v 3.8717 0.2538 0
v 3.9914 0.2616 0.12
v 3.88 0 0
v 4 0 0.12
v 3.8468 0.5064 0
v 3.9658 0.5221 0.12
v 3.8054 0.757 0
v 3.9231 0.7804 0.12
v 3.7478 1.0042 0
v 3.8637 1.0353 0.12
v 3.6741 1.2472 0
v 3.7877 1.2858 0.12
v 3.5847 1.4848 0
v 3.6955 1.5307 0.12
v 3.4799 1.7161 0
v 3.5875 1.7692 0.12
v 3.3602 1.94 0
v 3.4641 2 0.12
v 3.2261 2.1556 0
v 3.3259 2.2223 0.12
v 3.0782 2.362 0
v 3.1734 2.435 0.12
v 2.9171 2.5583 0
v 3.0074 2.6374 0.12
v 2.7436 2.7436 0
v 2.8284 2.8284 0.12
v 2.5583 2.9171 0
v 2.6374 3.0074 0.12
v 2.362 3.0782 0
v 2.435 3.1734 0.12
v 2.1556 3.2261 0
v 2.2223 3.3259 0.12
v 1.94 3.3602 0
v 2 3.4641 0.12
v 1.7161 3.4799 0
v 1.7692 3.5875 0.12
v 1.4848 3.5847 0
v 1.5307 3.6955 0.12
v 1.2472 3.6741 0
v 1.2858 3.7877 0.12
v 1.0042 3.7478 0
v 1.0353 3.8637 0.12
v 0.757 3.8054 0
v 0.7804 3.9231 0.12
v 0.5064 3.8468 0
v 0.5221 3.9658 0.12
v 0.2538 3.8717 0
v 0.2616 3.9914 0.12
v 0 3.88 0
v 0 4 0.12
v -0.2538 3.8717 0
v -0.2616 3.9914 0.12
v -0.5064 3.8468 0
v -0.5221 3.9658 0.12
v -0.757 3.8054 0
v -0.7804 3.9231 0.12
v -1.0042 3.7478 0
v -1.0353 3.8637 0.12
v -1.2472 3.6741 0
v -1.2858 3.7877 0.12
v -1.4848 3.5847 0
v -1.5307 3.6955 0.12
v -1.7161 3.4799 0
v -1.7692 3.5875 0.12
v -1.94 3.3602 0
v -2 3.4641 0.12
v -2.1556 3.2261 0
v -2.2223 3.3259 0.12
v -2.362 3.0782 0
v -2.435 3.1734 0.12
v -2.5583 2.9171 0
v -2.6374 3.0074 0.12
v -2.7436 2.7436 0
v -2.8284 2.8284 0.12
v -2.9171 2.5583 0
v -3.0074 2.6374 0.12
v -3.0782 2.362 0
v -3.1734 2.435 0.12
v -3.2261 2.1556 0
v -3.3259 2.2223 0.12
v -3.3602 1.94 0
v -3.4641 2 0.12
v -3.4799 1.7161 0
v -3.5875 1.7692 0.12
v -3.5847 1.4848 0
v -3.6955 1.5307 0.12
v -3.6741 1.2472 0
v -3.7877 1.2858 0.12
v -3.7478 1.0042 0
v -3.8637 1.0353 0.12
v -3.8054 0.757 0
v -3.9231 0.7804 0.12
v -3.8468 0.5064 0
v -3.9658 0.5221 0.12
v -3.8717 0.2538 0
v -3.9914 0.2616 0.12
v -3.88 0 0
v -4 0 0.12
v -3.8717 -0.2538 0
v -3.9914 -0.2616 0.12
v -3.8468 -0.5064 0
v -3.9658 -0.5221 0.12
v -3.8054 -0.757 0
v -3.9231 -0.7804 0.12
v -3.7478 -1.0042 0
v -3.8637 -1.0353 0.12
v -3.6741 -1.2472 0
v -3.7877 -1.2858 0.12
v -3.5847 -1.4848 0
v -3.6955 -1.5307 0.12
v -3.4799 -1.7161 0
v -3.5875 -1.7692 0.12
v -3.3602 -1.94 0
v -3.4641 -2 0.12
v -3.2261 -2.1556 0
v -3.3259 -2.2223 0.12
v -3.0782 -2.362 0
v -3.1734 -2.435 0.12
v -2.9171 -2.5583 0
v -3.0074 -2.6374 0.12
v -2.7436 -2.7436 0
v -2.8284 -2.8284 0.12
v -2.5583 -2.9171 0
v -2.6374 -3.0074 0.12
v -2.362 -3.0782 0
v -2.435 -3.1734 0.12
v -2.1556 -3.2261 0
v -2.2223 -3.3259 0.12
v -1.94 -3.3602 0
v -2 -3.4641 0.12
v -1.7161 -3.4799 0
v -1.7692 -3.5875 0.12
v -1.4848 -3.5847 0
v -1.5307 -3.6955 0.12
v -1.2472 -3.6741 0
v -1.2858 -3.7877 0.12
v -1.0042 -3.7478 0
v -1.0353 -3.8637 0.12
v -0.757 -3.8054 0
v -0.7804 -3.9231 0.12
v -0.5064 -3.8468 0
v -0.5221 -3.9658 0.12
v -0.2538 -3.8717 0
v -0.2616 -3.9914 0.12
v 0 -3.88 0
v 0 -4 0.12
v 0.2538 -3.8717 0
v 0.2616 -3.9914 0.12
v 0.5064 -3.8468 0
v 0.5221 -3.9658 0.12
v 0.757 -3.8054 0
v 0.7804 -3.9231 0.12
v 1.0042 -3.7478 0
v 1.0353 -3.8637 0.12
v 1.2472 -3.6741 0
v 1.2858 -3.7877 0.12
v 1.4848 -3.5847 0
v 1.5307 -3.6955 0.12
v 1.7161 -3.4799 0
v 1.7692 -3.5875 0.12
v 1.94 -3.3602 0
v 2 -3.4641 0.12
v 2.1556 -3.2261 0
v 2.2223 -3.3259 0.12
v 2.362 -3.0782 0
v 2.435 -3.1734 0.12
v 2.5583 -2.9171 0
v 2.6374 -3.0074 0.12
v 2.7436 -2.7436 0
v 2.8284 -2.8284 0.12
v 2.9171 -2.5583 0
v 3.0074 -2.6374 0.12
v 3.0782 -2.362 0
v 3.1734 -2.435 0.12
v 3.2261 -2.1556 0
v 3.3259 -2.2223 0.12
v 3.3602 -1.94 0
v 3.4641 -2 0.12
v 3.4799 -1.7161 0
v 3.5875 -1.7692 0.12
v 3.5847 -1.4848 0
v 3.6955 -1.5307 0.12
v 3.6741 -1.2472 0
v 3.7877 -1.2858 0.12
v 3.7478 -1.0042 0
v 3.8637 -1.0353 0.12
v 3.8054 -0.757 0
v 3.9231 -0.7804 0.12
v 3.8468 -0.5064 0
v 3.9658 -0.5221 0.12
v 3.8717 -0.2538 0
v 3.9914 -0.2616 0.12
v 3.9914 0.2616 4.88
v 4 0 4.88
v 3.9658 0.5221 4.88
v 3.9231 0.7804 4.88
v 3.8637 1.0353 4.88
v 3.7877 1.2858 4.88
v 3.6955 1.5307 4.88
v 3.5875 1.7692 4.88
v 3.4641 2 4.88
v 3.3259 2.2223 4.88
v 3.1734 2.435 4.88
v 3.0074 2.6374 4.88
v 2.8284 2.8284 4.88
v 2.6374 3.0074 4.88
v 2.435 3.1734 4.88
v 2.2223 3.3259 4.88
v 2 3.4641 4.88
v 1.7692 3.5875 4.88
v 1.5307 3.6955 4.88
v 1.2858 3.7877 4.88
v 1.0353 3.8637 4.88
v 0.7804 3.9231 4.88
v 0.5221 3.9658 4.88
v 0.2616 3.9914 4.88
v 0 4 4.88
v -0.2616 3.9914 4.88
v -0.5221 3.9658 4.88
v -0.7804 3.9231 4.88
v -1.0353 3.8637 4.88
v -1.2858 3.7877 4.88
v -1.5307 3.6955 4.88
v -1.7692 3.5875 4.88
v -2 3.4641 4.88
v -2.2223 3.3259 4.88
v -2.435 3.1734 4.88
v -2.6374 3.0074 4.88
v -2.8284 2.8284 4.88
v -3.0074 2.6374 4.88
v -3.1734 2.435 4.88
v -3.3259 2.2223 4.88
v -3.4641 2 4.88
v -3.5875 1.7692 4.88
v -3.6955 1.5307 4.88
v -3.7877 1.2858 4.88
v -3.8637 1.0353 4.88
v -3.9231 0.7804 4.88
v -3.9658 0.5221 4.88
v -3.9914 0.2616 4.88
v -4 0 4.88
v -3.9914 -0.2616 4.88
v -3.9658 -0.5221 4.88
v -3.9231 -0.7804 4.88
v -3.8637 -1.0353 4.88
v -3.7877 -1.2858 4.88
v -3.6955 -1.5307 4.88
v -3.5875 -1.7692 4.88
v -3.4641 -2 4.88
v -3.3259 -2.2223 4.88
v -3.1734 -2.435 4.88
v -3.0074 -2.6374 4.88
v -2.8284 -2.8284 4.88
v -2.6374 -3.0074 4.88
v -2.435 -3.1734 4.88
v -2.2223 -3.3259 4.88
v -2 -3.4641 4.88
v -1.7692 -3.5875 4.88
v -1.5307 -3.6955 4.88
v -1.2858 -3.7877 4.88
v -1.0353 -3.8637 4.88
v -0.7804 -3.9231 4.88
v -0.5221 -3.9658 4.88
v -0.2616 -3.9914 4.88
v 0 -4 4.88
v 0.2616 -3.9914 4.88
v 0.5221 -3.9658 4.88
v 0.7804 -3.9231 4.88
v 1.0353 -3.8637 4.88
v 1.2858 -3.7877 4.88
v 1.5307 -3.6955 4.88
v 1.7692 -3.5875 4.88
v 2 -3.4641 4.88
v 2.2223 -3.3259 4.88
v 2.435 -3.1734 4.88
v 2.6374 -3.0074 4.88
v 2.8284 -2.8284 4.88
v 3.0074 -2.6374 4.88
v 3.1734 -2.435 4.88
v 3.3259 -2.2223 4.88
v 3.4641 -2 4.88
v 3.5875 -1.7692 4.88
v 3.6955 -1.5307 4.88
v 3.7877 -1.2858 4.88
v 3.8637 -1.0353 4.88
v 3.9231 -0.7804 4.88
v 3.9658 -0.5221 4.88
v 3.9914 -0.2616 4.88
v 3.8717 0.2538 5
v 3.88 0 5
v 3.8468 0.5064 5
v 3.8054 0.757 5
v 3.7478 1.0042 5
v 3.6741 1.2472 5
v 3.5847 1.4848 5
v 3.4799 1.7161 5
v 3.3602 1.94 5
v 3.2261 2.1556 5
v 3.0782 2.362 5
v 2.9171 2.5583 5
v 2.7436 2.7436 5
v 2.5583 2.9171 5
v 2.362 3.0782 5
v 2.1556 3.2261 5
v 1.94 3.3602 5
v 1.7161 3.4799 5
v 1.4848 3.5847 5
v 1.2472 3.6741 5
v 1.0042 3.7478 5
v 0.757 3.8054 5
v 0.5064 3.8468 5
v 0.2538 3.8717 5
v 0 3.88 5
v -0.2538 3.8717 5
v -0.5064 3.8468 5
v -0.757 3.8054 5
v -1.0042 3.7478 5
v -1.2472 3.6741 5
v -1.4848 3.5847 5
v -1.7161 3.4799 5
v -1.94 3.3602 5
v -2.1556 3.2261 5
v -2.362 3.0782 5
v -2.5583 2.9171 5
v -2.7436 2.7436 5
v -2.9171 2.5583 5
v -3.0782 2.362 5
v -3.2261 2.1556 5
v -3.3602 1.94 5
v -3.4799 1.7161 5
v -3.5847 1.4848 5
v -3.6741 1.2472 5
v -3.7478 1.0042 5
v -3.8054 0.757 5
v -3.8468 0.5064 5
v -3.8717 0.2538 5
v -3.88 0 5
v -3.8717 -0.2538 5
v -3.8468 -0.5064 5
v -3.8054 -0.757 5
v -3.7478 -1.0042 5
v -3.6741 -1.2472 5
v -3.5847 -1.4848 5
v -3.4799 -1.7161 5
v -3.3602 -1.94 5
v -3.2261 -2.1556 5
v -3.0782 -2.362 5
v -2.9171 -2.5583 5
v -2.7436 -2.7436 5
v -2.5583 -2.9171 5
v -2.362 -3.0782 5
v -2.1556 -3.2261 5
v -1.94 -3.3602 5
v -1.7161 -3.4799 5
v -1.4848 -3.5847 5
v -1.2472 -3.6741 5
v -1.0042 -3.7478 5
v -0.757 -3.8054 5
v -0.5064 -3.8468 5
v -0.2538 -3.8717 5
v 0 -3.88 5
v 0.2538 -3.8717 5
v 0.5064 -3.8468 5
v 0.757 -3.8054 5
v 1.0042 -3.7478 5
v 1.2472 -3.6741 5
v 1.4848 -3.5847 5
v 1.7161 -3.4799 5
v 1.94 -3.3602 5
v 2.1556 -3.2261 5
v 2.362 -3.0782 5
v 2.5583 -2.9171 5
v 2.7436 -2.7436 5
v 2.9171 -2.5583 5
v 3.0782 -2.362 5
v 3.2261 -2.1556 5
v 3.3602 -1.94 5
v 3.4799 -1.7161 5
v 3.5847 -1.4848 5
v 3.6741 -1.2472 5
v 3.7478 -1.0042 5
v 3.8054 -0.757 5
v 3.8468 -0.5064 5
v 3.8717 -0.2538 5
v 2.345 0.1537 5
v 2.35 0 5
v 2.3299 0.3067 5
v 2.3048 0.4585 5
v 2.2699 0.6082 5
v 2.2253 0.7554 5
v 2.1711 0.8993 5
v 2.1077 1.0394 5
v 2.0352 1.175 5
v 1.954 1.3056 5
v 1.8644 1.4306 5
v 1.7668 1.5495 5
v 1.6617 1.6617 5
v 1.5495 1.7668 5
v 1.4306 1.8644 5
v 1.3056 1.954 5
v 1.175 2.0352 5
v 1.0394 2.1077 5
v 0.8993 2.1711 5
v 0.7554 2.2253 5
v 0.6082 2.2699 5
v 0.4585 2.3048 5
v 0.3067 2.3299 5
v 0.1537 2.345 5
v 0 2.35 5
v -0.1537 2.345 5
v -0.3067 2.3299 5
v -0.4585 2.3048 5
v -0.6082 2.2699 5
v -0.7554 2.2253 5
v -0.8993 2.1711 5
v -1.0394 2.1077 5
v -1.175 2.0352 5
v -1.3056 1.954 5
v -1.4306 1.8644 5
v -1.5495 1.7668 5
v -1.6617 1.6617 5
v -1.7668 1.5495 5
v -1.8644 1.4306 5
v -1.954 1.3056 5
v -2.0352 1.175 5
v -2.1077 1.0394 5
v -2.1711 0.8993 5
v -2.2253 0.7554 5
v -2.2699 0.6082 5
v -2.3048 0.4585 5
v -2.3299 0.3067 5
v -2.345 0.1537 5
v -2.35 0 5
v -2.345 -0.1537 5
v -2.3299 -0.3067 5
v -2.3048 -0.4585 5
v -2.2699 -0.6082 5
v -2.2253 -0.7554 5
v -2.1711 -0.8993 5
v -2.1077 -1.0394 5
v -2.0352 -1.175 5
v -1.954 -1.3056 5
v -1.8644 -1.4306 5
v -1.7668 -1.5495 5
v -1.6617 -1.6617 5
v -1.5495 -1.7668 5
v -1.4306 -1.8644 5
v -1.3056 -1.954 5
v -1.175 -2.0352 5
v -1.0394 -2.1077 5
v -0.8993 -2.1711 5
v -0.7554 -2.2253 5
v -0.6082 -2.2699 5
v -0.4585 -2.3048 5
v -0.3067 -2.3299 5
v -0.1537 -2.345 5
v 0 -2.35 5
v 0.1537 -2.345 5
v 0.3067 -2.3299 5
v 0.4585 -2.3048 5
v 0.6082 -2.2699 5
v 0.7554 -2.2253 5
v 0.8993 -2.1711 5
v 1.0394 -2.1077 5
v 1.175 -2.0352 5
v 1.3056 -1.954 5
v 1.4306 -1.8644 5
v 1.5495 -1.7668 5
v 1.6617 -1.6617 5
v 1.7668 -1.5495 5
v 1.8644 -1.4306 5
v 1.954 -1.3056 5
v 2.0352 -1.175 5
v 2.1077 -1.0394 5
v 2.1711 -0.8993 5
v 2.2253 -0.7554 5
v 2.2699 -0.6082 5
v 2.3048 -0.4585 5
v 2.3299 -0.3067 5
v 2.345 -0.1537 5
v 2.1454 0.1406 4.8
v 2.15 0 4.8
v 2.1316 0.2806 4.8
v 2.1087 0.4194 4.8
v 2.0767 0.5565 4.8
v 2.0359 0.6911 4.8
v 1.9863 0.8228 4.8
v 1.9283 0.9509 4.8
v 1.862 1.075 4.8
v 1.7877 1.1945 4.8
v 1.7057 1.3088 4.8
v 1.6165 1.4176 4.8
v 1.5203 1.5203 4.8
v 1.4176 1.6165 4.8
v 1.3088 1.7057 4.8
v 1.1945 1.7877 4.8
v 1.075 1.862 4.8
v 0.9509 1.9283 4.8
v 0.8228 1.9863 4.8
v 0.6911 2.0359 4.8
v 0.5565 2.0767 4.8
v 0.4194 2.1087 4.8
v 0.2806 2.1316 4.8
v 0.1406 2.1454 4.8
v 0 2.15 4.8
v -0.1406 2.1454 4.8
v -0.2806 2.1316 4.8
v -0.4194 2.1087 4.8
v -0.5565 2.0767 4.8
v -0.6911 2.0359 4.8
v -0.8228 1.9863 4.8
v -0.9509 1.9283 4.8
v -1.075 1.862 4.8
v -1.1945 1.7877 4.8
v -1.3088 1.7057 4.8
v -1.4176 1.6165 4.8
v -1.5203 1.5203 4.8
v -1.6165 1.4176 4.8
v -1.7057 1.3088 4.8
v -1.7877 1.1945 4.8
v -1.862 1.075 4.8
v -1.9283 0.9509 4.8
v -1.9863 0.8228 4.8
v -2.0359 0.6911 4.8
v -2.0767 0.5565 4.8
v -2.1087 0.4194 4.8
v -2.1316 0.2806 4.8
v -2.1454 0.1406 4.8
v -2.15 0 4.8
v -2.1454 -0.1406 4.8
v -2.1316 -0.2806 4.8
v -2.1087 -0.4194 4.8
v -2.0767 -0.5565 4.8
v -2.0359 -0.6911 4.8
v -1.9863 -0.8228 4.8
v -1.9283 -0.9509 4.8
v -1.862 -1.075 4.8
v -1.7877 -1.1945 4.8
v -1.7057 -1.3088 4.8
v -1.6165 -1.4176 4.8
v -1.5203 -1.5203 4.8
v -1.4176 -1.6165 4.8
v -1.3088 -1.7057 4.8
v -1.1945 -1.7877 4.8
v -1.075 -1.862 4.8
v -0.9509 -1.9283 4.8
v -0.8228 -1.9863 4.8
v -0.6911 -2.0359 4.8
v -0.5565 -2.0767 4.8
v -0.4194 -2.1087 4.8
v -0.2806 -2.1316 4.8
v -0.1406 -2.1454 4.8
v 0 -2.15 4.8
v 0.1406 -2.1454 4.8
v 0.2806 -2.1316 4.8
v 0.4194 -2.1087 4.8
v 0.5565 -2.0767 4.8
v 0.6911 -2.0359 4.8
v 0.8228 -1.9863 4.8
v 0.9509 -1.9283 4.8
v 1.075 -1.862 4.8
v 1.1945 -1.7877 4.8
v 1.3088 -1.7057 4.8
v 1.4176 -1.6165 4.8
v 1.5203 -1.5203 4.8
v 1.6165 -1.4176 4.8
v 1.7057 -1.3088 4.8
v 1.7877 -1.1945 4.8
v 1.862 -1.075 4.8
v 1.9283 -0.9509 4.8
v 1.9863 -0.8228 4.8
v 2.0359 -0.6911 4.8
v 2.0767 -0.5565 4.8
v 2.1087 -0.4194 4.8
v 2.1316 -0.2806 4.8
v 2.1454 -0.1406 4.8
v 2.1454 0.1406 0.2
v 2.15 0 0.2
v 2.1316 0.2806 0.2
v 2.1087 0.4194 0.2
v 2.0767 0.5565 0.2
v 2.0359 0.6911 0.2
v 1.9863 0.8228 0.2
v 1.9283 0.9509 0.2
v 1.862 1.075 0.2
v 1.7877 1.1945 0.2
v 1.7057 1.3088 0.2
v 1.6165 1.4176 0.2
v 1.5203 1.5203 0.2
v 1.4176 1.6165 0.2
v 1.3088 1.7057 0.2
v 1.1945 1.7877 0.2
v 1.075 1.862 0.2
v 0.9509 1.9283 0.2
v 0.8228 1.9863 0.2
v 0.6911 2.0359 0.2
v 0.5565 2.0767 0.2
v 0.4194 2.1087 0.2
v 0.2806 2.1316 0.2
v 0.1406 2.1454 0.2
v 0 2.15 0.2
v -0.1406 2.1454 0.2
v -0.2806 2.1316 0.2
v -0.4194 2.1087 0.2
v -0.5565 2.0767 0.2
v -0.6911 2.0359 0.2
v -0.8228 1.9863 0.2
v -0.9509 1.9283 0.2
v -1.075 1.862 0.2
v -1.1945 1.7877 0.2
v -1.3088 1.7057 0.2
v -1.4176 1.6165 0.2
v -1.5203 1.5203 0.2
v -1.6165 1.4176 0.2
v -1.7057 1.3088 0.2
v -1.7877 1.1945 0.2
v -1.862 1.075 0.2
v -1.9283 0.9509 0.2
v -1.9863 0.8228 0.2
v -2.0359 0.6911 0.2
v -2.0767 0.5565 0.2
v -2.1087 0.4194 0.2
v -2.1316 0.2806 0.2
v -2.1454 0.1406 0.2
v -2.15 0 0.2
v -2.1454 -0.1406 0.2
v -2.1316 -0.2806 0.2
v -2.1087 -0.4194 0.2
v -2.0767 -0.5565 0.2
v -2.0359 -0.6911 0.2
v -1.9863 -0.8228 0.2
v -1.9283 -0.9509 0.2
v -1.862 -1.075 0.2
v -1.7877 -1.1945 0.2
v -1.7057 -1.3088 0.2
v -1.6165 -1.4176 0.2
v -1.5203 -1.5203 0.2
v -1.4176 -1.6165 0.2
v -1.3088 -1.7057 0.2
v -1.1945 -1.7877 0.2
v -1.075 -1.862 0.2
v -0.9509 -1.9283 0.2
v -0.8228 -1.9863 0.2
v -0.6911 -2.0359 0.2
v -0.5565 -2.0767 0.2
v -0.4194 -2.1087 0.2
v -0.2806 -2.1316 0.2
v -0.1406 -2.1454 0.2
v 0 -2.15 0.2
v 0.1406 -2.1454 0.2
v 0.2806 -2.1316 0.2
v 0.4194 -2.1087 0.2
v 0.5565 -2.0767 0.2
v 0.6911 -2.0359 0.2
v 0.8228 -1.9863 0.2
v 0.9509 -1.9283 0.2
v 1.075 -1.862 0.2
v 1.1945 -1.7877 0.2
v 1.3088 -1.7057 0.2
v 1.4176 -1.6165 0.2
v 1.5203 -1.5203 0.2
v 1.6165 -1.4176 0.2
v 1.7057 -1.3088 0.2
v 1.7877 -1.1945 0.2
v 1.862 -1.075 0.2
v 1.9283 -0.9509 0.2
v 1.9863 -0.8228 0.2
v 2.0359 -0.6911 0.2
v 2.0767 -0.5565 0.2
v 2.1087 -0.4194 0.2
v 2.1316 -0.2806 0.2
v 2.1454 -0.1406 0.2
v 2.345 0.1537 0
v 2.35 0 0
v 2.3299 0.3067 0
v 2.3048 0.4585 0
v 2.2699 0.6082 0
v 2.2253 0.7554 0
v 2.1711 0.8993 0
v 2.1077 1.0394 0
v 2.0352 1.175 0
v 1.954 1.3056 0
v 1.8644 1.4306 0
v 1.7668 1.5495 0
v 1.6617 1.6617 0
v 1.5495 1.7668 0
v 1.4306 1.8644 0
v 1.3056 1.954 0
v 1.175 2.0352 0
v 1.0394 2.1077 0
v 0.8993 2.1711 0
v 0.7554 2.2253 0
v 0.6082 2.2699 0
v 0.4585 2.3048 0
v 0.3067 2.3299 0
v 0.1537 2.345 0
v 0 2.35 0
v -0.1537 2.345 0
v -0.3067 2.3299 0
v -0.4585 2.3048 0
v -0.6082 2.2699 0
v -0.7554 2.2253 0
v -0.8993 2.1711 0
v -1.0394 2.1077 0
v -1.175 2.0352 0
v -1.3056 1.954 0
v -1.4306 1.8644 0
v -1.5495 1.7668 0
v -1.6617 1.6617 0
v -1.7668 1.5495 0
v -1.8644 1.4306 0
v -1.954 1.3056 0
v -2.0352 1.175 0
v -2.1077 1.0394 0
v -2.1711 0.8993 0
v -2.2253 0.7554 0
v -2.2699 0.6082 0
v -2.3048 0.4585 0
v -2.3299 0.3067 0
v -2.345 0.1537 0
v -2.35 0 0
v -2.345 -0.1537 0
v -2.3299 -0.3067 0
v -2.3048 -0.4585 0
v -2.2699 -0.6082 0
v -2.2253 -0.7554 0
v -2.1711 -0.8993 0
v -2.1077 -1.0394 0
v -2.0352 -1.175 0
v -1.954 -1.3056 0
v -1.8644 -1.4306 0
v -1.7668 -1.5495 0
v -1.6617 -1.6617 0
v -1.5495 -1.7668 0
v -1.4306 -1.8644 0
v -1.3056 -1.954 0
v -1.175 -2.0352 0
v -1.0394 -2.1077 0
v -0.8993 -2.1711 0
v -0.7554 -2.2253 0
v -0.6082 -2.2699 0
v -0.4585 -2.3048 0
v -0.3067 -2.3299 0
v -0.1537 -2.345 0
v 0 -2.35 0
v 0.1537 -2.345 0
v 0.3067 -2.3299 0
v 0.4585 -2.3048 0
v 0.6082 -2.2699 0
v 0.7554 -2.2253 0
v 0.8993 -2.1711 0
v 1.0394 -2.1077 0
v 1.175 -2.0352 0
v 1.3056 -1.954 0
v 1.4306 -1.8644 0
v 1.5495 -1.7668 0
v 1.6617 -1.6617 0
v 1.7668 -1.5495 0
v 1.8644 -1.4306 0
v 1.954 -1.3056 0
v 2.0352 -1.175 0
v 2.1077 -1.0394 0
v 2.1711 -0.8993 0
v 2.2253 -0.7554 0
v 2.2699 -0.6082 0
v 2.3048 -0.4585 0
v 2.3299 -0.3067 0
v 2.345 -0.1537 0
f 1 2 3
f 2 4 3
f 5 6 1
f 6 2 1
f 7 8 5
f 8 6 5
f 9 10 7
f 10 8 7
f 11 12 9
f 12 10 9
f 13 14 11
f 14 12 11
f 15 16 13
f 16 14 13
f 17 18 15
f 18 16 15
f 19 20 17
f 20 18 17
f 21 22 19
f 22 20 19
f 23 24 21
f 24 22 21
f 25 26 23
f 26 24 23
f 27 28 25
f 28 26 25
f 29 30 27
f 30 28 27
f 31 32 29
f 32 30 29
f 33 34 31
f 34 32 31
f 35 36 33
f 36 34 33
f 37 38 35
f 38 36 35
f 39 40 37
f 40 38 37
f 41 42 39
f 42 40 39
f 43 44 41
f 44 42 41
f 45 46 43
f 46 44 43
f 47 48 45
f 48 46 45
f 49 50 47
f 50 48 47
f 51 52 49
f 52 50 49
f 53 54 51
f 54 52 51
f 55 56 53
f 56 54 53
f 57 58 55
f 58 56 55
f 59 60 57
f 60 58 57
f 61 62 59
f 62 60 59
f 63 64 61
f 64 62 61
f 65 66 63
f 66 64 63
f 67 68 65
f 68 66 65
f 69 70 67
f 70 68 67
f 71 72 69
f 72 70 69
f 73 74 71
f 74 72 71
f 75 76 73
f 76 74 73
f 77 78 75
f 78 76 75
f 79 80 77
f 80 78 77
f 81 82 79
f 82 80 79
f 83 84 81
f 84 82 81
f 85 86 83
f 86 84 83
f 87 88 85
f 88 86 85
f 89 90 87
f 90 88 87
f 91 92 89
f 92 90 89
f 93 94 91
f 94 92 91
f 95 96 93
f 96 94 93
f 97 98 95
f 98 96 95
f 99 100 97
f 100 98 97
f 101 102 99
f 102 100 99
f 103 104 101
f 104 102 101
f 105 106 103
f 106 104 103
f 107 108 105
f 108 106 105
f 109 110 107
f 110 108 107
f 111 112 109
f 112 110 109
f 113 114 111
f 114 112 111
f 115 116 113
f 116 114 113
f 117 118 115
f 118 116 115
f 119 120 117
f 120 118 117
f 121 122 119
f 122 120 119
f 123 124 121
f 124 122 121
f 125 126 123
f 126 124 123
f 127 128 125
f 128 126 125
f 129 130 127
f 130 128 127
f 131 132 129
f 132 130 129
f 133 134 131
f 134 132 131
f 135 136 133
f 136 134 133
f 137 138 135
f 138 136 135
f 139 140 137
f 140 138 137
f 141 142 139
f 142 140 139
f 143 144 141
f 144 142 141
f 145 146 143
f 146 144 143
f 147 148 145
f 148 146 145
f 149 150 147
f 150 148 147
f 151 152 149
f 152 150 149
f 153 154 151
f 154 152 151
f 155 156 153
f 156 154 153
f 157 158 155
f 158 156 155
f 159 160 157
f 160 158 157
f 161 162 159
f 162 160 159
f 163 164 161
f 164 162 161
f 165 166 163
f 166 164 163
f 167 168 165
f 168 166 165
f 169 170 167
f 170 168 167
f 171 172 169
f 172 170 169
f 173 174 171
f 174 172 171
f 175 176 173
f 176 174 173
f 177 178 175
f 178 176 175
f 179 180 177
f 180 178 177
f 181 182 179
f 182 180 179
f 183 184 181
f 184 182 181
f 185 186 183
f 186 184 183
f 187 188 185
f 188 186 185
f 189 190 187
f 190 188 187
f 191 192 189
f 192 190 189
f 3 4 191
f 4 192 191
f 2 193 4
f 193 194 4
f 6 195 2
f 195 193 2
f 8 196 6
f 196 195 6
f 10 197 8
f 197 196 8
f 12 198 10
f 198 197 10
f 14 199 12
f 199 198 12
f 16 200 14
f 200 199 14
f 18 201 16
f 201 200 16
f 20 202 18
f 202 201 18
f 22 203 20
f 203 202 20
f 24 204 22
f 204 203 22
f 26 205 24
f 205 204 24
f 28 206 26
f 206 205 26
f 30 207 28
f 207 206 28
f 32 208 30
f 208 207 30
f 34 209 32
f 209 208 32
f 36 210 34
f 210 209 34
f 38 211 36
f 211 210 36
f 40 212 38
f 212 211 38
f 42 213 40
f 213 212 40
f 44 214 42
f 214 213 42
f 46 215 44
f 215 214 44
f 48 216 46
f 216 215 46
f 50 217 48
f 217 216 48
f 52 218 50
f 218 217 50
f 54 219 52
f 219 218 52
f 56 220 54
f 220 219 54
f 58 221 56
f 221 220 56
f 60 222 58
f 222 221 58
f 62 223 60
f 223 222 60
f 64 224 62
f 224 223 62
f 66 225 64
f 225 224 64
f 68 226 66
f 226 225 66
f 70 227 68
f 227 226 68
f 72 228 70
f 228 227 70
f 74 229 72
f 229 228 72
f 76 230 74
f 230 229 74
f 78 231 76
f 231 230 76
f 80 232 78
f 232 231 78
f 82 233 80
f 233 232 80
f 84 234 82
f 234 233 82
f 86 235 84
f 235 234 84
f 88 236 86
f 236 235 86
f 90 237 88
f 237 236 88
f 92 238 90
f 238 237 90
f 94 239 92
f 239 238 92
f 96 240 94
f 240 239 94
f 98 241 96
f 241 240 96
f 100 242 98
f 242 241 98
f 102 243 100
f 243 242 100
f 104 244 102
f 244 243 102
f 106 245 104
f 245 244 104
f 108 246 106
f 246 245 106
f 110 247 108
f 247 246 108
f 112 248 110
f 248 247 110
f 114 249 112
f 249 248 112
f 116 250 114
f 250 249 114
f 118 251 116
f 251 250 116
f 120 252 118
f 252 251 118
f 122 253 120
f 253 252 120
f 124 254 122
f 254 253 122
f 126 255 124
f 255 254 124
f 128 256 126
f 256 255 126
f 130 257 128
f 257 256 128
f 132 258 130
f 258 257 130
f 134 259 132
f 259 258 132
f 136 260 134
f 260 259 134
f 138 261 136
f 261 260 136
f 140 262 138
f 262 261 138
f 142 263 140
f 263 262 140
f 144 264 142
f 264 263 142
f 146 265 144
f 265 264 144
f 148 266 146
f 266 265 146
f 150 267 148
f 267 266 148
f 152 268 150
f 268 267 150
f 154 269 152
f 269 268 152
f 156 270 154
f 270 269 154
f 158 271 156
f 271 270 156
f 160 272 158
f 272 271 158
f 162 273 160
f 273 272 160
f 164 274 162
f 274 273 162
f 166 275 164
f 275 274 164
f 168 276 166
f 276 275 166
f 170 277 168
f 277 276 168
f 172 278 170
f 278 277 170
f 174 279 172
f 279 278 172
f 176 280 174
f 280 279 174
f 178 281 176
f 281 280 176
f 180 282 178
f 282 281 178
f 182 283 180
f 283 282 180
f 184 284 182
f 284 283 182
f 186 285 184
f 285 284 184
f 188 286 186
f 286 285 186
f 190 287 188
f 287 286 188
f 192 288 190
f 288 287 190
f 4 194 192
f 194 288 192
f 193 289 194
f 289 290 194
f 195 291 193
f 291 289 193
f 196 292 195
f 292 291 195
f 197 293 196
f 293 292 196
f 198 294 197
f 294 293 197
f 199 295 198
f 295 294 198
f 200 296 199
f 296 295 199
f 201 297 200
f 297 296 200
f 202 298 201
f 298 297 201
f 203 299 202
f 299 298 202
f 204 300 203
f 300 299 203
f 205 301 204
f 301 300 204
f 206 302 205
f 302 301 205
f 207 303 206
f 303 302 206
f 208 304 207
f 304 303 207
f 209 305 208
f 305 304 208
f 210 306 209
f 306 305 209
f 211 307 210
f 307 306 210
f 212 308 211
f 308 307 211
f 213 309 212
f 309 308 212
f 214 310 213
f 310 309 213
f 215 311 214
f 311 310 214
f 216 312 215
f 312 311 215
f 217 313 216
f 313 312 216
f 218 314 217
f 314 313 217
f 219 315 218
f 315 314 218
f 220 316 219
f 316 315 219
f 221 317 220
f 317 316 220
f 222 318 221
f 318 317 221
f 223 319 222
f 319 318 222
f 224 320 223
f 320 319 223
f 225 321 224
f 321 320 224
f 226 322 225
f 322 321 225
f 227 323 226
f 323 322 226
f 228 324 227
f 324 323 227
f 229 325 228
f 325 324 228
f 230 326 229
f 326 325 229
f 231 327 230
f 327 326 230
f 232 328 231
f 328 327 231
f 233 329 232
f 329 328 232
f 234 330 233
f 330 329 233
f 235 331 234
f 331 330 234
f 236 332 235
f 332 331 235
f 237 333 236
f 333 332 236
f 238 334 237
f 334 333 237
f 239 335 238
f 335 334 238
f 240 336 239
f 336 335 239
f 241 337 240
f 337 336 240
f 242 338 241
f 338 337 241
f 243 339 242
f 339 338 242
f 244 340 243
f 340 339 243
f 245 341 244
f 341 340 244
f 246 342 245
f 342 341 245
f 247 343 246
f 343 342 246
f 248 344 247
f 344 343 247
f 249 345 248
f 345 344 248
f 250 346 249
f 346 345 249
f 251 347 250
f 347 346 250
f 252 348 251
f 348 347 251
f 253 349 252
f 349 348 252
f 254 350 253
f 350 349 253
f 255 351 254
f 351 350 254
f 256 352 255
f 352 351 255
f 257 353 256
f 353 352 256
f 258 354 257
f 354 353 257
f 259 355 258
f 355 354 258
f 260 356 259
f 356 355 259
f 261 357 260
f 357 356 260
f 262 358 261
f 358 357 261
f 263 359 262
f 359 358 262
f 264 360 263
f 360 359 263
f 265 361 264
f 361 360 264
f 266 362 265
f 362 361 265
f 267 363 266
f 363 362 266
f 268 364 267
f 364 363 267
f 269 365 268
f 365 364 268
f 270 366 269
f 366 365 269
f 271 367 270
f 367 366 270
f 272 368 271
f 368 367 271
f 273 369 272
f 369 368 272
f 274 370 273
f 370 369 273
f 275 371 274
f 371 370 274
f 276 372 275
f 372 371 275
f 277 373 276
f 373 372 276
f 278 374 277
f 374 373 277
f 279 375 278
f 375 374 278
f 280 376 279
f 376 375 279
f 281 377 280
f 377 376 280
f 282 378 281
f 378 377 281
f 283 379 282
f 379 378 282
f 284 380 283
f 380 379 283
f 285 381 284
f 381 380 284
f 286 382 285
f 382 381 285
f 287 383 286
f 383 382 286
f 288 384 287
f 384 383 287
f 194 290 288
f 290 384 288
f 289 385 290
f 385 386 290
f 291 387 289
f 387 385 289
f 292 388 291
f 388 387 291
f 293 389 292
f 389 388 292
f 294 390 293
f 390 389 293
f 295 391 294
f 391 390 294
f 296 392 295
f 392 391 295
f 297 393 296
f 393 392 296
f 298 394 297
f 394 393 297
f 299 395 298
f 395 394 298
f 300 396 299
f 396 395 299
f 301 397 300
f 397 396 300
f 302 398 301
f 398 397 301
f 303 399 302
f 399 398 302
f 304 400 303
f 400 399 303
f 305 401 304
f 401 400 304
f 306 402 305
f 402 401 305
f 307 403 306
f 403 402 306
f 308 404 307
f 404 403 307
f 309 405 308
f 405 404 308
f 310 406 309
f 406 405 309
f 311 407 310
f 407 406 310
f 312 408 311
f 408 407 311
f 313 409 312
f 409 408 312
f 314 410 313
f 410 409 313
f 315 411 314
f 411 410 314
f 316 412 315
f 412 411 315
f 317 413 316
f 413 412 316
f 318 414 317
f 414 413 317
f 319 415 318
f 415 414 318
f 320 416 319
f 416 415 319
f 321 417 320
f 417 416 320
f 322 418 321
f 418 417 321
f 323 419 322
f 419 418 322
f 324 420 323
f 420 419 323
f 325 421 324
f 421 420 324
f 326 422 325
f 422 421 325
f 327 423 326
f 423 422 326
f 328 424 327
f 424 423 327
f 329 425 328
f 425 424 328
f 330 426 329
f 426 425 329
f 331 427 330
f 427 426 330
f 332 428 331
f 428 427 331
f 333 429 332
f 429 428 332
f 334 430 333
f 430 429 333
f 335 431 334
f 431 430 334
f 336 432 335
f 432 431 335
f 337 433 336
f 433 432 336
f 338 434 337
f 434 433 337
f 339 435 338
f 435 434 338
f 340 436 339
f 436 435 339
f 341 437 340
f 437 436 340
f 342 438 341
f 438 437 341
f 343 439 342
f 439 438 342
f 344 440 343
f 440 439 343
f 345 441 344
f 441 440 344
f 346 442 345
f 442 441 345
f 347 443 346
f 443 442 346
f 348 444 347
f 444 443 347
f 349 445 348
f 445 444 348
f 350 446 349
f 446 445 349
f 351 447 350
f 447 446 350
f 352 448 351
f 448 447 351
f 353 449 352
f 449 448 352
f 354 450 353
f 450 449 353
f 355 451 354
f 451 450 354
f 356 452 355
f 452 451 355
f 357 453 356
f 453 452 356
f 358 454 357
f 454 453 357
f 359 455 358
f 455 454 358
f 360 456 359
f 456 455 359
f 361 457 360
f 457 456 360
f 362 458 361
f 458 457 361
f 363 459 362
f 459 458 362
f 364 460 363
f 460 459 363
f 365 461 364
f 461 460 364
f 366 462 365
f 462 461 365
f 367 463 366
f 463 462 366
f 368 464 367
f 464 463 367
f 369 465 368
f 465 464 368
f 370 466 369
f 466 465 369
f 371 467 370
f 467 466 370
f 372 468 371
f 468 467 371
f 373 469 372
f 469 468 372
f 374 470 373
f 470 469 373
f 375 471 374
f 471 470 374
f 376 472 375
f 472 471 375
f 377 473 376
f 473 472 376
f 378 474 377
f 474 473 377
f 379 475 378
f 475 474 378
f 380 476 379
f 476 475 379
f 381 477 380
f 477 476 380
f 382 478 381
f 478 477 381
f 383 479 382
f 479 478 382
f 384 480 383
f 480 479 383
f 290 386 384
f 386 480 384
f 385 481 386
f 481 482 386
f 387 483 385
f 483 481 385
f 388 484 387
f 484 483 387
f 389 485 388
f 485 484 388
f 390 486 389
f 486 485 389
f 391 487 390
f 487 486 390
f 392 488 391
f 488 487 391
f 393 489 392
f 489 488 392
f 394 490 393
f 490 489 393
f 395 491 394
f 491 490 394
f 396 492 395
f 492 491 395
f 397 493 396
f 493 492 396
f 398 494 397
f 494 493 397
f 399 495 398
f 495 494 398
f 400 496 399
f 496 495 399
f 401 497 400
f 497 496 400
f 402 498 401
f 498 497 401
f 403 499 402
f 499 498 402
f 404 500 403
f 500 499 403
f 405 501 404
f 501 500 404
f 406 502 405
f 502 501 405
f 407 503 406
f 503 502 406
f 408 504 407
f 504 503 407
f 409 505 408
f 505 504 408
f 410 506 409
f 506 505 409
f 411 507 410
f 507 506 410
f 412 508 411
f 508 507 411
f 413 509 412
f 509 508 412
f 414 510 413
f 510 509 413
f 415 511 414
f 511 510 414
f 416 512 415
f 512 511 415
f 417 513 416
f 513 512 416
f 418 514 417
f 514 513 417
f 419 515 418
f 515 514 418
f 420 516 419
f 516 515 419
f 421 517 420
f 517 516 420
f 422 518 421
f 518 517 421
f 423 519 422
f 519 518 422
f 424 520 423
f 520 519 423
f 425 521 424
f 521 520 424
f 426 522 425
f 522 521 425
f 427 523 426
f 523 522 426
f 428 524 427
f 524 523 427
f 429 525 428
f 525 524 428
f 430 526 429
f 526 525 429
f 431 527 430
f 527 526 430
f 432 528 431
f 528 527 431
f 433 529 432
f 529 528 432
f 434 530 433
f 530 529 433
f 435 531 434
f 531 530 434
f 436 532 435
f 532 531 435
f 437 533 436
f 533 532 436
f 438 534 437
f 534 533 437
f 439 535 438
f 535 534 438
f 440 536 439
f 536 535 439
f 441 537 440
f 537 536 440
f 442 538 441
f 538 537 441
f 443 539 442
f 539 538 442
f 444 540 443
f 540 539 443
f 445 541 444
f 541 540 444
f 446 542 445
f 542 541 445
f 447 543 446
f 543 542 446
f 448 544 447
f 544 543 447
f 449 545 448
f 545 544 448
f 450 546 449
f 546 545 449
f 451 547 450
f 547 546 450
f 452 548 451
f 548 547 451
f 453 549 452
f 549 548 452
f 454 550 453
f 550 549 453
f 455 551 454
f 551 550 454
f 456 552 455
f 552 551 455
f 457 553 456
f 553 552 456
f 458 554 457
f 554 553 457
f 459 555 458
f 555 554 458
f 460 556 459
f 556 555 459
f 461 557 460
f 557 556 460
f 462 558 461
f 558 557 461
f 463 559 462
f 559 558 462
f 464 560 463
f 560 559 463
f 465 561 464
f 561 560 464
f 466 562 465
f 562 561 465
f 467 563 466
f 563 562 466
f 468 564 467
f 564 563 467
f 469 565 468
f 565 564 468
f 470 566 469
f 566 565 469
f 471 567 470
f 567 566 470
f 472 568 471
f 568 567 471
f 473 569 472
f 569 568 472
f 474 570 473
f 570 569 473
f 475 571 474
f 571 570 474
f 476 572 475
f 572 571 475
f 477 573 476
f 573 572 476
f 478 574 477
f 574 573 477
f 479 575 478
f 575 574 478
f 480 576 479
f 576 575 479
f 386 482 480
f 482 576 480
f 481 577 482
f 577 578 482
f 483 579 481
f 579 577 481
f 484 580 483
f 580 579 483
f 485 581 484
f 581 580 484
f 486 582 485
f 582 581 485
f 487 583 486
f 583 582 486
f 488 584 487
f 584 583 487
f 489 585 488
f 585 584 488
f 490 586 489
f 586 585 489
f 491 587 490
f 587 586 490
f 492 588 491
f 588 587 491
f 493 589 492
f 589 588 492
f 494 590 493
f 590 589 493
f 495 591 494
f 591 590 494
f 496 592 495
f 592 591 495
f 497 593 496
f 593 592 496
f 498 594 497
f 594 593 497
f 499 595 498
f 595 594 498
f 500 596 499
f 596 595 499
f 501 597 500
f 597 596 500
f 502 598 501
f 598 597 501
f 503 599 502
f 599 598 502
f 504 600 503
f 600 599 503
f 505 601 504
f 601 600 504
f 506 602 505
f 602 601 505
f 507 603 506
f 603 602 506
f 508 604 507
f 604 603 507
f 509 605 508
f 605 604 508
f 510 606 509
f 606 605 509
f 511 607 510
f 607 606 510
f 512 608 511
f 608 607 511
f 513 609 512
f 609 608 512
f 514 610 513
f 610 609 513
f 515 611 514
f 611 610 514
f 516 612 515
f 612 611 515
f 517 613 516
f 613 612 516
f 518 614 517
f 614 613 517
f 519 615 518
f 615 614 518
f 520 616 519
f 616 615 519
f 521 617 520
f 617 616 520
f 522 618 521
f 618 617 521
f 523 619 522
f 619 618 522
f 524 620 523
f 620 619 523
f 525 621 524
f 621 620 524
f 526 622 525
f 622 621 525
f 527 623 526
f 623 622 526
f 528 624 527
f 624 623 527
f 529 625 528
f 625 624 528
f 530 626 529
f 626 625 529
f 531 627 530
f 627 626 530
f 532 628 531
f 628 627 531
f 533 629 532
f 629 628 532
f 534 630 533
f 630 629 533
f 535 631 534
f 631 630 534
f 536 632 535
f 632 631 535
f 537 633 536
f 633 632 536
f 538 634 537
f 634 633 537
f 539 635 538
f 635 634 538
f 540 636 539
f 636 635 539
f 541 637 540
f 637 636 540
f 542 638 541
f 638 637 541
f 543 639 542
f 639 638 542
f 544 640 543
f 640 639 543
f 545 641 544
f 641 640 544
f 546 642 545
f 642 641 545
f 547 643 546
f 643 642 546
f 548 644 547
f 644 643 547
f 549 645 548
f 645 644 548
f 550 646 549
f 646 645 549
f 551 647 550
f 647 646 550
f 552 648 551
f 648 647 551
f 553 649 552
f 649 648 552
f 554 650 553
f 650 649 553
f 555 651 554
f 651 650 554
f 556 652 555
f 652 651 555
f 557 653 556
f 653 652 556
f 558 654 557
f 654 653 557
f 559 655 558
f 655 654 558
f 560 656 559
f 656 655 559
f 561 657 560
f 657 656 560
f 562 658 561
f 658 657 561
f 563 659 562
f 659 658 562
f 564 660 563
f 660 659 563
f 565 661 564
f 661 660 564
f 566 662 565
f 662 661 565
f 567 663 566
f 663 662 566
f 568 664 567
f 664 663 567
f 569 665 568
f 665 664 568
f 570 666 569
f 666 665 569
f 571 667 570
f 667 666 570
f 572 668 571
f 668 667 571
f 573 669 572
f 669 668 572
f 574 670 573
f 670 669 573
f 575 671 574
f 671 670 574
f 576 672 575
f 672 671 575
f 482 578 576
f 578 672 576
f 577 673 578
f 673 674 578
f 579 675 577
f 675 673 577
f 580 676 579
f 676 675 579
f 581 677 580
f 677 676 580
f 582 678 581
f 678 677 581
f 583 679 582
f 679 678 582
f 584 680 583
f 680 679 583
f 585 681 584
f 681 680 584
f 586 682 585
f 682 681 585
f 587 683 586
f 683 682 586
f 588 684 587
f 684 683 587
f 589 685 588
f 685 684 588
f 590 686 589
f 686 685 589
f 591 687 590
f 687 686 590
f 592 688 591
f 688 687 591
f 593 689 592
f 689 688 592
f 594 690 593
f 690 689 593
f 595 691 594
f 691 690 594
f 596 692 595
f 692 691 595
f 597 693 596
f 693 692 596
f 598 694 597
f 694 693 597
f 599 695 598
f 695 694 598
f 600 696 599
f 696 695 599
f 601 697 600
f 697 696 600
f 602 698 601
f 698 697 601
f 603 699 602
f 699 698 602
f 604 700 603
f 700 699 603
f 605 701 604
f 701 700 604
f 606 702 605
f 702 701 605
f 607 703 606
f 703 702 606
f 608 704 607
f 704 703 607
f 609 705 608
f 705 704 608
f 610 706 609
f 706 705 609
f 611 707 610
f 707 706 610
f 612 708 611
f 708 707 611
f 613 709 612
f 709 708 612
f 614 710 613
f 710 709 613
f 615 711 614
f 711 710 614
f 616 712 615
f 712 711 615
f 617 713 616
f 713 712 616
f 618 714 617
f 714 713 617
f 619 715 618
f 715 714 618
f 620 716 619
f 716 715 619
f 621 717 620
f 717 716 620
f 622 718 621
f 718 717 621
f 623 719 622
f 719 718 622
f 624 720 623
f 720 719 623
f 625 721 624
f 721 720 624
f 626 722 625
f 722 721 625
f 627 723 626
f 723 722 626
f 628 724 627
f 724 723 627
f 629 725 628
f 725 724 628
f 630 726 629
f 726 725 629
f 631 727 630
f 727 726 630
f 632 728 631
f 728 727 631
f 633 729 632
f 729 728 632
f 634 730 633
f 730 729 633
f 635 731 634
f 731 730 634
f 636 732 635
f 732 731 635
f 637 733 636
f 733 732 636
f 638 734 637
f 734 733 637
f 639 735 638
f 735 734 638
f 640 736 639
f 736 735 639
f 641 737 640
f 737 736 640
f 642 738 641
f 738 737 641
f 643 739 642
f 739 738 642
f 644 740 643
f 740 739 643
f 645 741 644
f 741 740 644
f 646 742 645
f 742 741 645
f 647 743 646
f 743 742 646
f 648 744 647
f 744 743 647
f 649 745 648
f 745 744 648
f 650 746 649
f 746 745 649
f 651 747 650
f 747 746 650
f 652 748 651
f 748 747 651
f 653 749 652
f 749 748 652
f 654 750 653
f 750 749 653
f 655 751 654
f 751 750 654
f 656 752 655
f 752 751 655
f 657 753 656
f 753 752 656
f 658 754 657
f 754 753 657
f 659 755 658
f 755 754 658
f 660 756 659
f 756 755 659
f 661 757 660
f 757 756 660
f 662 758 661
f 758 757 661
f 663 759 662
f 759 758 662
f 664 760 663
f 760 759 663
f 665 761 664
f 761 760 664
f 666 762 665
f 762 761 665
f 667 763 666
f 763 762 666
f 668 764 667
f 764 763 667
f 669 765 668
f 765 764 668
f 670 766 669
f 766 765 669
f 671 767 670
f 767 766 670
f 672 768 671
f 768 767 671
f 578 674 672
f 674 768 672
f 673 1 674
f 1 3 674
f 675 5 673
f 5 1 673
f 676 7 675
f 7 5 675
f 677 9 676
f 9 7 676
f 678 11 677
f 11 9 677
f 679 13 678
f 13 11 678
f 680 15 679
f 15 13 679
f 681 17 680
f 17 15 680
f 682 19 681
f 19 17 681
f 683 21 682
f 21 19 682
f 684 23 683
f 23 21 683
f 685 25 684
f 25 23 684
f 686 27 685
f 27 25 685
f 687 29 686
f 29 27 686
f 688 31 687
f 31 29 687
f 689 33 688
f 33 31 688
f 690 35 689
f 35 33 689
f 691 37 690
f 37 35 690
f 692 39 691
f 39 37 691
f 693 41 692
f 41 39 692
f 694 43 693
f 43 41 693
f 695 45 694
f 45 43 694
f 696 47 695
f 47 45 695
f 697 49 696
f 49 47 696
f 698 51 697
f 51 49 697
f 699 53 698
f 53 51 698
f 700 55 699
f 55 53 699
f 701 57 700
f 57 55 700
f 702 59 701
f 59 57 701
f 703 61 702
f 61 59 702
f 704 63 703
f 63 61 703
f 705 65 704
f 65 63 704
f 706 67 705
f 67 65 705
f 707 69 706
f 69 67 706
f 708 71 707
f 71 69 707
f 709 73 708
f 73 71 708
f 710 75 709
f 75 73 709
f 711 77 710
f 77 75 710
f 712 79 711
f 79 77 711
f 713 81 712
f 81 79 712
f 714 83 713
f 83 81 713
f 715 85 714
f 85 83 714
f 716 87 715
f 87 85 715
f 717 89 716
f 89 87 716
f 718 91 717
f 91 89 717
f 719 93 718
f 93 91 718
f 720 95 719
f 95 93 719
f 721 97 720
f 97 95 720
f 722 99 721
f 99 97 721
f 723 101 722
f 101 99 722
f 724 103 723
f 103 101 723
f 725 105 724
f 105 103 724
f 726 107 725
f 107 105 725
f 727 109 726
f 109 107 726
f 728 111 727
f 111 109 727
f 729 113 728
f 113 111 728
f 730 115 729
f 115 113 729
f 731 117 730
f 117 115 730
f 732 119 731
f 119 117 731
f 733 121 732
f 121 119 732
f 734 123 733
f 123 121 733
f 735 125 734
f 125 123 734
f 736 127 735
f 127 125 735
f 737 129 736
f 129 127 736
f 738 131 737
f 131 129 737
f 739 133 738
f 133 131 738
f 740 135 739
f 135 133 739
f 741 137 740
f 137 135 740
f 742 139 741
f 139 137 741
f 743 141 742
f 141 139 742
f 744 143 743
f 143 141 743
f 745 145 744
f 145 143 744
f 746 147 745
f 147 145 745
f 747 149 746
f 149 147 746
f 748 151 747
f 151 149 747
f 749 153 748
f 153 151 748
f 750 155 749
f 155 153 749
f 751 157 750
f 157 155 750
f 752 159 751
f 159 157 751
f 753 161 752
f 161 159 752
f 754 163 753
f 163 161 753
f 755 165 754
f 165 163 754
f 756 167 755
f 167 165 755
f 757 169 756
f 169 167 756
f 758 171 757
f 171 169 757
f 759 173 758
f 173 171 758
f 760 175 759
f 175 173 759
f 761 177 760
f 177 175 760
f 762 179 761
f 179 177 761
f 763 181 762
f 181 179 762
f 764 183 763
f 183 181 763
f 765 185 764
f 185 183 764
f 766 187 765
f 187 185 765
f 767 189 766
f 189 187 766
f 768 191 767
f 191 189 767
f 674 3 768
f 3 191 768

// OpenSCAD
// OOMP generic catalogue model; units: mm.
// Stud length is additional to body depth. Tapping depths are model assumptions.
variant = "full"; // [full, display]
family = "spacer";
connection_type = "plain";
depth_mm = 5;
stud_length_mm = 0;
tapped_depth_mm = 0;
bore_mm = 4.3;
outer_diameter_mm = 8;
across_flats_mm = 6;
thread_nominal_diameter_mm = 3;
thread_pitch_mm = 0.5;
edge_chamfer_mm = 0.12;
mouth_chamfer_mm = 0.2;
angular_segments = 96;
samples_per_pitch = 16;

// Boundary travels up the outside, then down any tapped/plain bore.
// Equal-height rings at shoulders form the annular shoulder faces.
n = angular_segments;
threaded = family == "standoff";
has_stud = connection_type == "stud_to_tapped" || connection_type == "stud_to_stud";
two_studs = connection_type == "stud_to_stud";
through = !threaded || connection_type == "tapped_to_tapped";
pitch = thread_pitch_mm;
diameter = threaded ? thread_nominal_diameter_mm : bore_mm;
minor = diameter - 5*sqrt(3)*pitch/8;
transition = mouth_chamfer_mm + (threaded ? 5*sqrt(3)*pitch/16 : 0);
tip_chamfer = mouth_chamfer_mm + 17*sqrt(3)*pitch/48;
function sorted(v) = len(v)<=1 ? v : let(p=v[0])
    concat(sorted([for(x=v) if(x<p-1e-8) x]), [p], sorted([for(x=v) if(x>p+1e-8) x]));
function reverse(v) = [for(i=[len(v)-1:-1:0]) v[i]];
function theta(i) = i*360/n;
function fract(x) = x-floor(x);
function phase_distance(i,z) = abs(fract(z/pitch-theta(i)/360+0.5)-0.5);
function thread_r(i,z) = minor/2 + min(5*sqrt(3)*pitch/16,
    max(0,(phase_distance(i,z)-0.125)*pitch*sqrt(3)));
function stud_r(i,z,tip) = min(diameter/2 - (variant=="full" ?
    min(17*sqrt(3)*pitch/48,max(0,(phase_distance(i,z)-0.0625)*pitch*sqrt(3))) : 0),
    diameter/2-tip_chamfer+abs(z-tip));
function body_r(i,z) = (threaded ? across_flats_mm/2/cos(theta(i)%60-30) : outer_diameter_mm/2)
    - max(0,edge_chamfer_mm-min(z,depth_mm-z));
function bore_r(i,z) = max(threaded ? (variant=="full" ? thread_r(i,z) : minor/2) : diameter/2,
    diameter/2+mouth_chamfer_mm-(through ? min(z,depth_mm-z) : depth_mm-z));
function stud_z(a,b,tip) = let(count=variant=="full" ? ceil(stud_length_mm/pitch*samples_per_pitch) : 1)
    sorted(concat([for(i=[0:count]) a+(b-a)*i/count], [tip==a ? tip+tip_chamfer : tip-tip_chamfer]));
body_z = sorted([0,edge_chamfer_mm,depth_mm-edge_chamfer_mm,depth_mm]);
low = through ? 0 : depth_mm-tapped_depth_mm;
count = threaded && variant=="full" ? ceil((depth_mm-low)/pitch*samples_per_pitch) : 1;
bore_z = two_studs ? [] : reverse(sorted(concat(
    [for(i=[0:count]) low+(depth_mm-low)*i/count],
    [depth_mm-mouth_chamfer_mm,depth_mm-transition],
    through ? [mouth_chamfer_mm,transition] : [])));
// Ring descriptors: [height, kind, tip]. Kind: 0 body, 1 stud, 2 bore.
rings = concat(
    has_stud ? [for(z=stud_z(-stud_length_mm,0,-stud_length_mm)) [z,1,-stud_length_mm]] : [],
    [for(z=body_z) [z,0,0]],
    two_studs ? [for(z=stud_z(depth_mm,depth_mm+stud_length_mm,depth_mm+stud_length_mm)) [z,1,depth_mm+stud_length_mm]] : [],
    [for(z=bore_z) [z,2,0]]);
function radius(i,ring) = ring[1]==0 ? body_r(i,ring[0]) :
    ring[1]==1 ? stud_r(i,ring[0],ring[2]) : bore_r(i,ring[0]);
points = concat([for(ring=rings) for(i=[0:n-1])
    [radius(i,ring)*cos(theta(i)),radius(i,ring)*sin(theta(i)),ring[0]]],
    through ? [] : [[0,0,rings[0][0]],[0,0,rings[len(rings)-1][0]]]);
center = len(rings)*n;
last = (len(rings)-1)*n;
// OpenSCAD winding is opposite to STL winding.
faces = concat(
    [for(j=[0:len(rings)-(through ? 1 : 2)]) for(i=[0:n-1]) each
        let(a=j*n+i,b=j*n+(i+1)%n,c=((j+1)%len(rings))*n+(i+1)%n,d=((j+1)%len(rings))*n+i)
        [[a,c,b],[a,d,c]]],
    through ? [] : [for(i=[0:n-1]) each let(k=(i+1)%n)
        [[center,i,k],[center+1,last+k,last+i]]]);
assert(family=="spacer" || family=="standoff");
assert(!threaded || connection_type=="tapped_to_tapped" || has_stud);
assert(depth_mm>0 && diameter>0 && pitch>0);
assert(variant=="full" || variant=="display");
assert(n>=24 && n%12==0 && samples_per_pitch>=8);
assert(mouth_chamfer_mm>0 && mouth_chamfer_mm<depth_mm/2);
assert(edge_chamfer_mm>=0 && edge_chamfer_mm<depth_mm/2);
assert(diameter+4*max(mouth_chamfer_mm,edge_chamfer_mm) < (threaded ? across_flats_mm : outer_diameter_mm));
assert(!has_stud || stud_length_mm>2*mouth_chamfer_mm);
assert(!through || !threaded || 2*transition<depth_mm);
assert(connection_type!="stud_to_tapped" || (tapped_depth_mm>transition && tapped_depth_mm<depth_mm));
color([0.86,0.85,0.81]) polyhedron(points=points,faces=faces,convexity=20);
